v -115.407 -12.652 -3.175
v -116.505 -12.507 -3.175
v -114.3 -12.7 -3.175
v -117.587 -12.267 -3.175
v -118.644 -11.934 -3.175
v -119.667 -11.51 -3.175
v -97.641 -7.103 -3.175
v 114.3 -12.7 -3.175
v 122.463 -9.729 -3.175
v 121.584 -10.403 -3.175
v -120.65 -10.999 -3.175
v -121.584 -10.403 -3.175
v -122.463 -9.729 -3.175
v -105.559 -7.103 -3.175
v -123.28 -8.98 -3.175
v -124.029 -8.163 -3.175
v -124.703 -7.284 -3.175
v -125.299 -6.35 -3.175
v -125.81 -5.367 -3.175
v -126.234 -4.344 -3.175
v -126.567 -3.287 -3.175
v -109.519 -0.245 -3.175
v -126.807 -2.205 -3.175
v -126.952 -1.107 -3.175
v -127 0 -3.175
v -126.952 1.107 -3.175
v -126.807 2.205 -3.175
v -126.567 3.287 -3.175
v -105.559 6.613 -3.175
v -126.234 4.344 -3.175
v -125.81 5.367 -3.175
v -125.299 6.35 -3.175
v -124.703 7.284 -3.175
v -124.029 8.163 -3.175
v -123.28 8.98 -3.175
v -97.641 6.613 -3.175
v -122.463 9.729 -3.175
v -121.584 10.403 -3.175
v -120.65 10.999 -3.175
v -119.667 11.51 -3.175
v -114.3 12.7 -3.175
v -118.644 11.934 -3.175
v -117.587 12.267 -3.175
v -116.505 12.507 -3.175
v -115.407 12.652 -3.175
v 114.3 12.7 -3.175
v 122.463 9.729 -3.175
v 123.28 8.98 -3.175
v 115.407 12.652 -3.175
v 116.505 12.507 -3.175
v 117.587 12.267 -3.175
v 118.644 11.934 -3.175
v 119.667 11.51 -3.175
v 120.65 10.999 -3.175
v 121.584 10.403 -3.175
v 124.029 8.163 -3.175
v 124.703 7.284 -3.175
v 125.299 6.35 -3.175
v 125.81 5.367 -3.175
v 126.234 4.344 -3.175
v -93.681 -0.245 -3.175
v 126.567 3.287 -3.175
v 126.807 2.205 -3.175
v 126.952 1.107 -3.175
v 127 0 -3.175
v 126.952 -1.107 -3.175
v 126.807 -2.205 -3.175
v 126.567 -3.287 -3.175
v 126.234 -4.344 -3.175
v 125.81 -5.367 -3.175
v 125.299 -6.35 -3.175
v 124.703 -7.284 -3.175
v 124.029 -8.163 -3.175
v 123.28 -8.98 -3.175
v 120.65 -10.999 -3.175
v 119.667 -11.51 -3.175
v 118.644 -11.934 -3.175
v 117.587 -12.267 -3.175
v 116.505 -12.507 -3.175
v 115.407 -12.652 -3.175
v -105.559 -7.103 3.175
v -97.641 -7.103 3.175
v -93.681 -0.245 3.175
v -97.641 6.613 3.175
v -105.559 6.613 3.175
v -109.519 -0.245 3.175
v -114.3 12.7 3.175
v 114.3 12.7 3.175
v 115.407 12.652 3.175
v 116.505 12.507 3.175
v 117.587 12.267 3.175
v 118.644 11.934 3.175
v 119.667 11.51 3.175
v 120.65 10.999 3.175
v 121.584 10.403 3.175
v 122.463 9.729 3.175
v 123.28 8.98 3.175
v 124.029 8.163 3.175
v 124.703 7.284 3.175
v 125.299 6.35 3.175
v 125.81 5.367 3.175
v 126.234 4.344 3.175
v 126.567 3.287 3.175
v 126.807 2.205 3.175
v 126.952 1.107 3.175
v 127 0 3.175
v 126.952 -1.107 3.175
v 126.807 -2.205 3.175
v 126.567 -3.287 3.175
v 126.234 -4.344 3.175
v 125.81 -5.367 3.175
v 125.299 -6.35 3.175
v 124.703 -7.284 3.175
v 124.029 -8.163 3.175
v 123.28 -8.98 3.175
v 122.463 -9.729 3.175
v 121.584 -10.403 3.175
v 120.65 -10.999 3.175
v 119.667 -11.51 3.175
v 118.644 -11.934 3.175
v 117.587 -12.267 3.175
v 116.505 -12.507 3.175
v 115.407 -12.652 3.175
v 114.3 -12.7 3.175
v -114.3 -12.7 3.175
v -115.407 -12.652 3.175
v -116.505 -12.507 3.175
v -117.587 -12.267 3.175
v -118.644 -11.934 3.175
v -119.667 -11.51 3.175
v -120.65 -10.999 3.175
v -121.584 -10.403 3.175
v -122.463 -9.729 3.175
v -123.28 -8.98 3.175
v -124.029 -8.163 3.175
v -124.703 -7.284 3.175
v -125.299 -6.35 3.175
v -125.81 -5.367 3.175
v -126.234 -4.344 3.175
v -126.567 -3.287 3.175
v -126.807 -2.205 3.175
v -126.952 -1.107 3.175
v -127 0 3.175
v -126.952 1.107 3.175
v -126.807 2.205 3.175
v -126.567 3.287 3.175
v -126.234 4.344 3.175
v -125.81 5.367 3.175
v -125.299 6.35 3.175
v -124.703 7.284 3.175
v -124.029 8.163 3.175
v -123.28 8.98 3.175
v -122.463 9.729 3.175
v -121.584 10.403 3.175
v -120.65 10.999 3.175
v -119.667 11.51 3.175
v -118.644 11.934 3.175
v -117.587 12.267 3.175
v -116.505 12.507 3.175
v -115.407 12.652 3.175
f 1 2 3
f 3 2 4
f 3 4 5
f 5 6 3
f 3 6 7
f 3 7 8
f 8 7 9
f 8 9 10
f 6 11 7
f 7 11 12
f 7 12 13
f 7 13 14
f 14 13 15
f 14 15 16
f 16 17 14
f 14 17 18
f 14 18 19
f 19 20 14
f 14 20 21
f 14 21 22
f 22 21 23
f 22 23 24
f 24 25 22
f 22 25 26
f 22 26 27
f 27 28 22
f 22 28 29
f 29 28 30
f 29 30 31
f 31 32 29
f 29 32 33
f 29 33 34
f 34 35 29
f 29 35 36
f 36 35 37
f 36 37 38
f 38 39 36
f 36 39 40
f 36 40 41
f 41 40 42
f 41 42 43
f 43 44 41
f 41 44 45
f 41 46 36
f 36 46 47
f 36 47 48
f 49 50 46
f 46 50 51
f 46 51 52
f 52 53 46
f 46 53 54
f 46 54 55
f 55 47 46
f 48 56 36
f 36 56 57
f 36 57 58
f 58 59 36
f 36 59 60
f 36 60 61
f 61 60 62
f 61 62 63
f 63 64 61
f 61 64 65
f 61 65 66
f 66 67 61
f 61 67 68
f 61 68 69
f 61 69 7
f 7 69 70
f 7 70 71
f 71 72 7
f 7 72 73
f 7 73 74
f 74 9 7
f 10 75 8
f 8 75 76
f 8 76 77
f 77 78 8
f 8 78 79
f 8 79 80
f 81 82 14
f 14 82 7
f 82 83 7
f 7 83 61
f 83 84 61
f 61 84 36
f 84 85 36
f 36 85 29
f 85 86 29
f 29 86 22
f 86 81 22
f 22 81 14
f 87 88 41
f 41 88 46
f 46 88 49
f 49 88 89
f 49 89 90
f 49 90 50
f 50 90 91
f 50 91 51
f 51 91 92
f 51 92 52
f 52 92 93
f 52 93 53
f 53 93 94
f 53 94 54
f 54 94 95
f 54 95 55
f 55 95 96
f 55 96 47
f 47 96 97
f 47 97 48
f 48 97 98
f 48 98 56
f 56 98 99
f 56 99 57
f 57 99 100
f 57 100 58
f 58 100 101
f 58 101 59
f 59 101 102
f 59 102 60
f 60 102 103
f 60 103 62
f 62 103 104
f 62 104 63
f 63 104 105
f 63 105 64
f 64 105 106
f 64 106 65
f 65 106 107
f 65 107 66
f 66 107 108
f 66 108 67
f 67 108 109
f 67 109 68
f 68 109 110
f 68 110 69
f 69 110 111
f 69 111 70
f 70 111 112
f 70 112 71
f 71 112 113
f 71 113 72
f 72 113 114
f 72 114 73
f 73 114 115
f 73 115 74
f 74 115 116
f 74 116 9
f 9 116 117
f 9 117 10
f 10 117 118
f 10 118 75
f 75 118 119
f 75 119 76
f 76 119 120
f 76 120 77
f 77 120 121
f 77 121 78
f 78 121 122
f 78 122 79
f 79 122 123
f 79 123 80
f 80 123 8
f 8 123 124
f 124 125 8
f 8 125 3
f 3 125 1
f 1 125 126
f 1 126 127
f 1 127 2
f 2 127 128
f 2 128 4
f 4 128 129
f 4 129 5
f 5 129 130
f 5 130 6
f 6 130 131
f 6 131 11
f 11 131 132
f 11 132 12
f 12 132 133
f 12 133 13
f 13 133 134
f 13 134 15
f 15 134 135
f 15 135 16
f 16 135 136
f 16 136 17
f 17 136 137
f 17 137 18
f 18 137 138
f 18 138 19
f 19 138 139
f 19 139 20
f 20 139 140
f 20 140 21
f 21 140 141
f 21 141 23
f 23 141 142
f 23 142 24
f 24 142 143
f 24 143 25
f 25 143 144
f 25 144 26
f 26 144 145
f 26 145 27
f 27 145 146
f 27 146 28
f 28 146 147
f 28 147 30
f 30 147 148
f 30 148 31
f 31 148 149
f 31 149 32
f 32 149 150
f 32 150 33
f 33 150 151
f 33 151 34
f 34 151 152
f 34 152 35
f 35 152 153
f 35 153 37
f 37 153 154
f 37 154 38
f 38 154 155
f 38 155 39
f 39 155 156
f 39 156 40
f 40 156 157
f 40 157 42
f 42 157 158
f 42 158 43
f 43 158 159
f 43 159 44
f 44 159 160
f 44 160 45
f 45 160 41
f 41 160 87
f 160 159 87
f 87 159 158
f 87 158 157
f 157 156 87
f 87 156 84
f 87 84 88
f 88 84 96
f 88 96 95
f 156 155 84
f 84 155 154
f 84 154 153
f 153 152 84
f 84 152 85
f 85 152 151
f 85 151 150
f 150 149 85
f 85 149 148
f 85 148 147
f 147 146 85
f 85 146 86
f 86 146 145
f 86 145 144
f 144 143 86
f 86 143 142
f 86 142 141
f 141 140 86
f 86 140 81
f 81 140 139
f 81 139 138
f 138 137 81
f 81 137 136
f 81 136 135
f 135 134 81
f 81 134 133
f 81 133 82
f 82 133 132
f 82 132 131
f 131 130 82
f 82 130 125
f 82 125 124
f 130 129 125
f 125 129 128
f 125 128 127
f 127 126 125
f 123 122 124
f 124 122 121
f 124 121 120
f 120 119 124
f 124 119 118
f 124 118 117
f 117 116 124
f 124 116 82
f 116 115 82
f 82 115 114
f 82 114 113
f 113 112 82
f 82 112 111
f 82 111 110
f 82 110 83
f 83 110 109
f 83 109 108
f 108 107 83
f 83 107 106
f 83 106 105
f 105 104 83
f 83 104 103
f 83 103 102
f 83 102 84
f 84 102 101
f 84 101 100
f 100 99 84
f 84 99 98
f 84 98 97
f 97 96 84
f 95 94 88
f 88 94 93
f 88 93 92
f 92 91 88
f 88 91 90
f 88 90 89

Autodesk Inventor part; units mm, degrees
ref_plane "YZ Plane" through (0, 0, 0) normal (1, 0, 0) x (0, 1, 0)
ref_plane "XZ Plane" through (0, 0, 0) normal (0, 1, 0) x (-1, 0, 0)
ref_plane "XY Plane" through (0, 0, 0) normal (0, 0, 1) x (1, 0, 0)
sketch "Sketch1" plane through (0, 0, 0) normal (0, 0, 1) x (1, 0, 0)
  line L0 (-114.3, -12.7) -> (114.3, -12.7)
  line L1 (114.3, 12.7) -> (-114.3, 12.7)
  line L2 (-127, -12.7) -> (127, 12.7) construction
  line L3 (127, -12.7) -> (-127, 12.7) construction
  line L4 (-93.6811, -0.2452) -> (-97.6405, -7.1032)
  line L5 (-97.6405, -7.1032) -> (-105.5595, -7.1032)
  line L6 (-105.5595, -7.1032) -> (-109.5189, -0.2452)
  line L7 (-109.5189, -0.2452) -> (-105.5595, 6.6128)
  line L8 (-105.5595, 6.6128) -> (-97.6405, 6.6128)
  line L9 (-97.6405, 6.6128) -> (-93.6811, -0.2452)
  arc A0 (-114.3, 12.7) -> (-114.3, -12.7) centre (-114.3, 0) ccw
  arc A1 (114.3, -12.7) -> (114.3, 12.7) centre (114.3, 0) ccw
  point P0 (0, 0)
  point P1 (-101.6, -0.2452)
  dimension "d0" = 254
  dimension "d1" = 25.4
  dimension "d2" = 13.716
  dimension "d14" = 25.4
extrude "Extrusion4" add sketch "Sketch1" along normal mid plane 6.35
properties part number "armForTurningControlWheel" material "PBT Plastic"
